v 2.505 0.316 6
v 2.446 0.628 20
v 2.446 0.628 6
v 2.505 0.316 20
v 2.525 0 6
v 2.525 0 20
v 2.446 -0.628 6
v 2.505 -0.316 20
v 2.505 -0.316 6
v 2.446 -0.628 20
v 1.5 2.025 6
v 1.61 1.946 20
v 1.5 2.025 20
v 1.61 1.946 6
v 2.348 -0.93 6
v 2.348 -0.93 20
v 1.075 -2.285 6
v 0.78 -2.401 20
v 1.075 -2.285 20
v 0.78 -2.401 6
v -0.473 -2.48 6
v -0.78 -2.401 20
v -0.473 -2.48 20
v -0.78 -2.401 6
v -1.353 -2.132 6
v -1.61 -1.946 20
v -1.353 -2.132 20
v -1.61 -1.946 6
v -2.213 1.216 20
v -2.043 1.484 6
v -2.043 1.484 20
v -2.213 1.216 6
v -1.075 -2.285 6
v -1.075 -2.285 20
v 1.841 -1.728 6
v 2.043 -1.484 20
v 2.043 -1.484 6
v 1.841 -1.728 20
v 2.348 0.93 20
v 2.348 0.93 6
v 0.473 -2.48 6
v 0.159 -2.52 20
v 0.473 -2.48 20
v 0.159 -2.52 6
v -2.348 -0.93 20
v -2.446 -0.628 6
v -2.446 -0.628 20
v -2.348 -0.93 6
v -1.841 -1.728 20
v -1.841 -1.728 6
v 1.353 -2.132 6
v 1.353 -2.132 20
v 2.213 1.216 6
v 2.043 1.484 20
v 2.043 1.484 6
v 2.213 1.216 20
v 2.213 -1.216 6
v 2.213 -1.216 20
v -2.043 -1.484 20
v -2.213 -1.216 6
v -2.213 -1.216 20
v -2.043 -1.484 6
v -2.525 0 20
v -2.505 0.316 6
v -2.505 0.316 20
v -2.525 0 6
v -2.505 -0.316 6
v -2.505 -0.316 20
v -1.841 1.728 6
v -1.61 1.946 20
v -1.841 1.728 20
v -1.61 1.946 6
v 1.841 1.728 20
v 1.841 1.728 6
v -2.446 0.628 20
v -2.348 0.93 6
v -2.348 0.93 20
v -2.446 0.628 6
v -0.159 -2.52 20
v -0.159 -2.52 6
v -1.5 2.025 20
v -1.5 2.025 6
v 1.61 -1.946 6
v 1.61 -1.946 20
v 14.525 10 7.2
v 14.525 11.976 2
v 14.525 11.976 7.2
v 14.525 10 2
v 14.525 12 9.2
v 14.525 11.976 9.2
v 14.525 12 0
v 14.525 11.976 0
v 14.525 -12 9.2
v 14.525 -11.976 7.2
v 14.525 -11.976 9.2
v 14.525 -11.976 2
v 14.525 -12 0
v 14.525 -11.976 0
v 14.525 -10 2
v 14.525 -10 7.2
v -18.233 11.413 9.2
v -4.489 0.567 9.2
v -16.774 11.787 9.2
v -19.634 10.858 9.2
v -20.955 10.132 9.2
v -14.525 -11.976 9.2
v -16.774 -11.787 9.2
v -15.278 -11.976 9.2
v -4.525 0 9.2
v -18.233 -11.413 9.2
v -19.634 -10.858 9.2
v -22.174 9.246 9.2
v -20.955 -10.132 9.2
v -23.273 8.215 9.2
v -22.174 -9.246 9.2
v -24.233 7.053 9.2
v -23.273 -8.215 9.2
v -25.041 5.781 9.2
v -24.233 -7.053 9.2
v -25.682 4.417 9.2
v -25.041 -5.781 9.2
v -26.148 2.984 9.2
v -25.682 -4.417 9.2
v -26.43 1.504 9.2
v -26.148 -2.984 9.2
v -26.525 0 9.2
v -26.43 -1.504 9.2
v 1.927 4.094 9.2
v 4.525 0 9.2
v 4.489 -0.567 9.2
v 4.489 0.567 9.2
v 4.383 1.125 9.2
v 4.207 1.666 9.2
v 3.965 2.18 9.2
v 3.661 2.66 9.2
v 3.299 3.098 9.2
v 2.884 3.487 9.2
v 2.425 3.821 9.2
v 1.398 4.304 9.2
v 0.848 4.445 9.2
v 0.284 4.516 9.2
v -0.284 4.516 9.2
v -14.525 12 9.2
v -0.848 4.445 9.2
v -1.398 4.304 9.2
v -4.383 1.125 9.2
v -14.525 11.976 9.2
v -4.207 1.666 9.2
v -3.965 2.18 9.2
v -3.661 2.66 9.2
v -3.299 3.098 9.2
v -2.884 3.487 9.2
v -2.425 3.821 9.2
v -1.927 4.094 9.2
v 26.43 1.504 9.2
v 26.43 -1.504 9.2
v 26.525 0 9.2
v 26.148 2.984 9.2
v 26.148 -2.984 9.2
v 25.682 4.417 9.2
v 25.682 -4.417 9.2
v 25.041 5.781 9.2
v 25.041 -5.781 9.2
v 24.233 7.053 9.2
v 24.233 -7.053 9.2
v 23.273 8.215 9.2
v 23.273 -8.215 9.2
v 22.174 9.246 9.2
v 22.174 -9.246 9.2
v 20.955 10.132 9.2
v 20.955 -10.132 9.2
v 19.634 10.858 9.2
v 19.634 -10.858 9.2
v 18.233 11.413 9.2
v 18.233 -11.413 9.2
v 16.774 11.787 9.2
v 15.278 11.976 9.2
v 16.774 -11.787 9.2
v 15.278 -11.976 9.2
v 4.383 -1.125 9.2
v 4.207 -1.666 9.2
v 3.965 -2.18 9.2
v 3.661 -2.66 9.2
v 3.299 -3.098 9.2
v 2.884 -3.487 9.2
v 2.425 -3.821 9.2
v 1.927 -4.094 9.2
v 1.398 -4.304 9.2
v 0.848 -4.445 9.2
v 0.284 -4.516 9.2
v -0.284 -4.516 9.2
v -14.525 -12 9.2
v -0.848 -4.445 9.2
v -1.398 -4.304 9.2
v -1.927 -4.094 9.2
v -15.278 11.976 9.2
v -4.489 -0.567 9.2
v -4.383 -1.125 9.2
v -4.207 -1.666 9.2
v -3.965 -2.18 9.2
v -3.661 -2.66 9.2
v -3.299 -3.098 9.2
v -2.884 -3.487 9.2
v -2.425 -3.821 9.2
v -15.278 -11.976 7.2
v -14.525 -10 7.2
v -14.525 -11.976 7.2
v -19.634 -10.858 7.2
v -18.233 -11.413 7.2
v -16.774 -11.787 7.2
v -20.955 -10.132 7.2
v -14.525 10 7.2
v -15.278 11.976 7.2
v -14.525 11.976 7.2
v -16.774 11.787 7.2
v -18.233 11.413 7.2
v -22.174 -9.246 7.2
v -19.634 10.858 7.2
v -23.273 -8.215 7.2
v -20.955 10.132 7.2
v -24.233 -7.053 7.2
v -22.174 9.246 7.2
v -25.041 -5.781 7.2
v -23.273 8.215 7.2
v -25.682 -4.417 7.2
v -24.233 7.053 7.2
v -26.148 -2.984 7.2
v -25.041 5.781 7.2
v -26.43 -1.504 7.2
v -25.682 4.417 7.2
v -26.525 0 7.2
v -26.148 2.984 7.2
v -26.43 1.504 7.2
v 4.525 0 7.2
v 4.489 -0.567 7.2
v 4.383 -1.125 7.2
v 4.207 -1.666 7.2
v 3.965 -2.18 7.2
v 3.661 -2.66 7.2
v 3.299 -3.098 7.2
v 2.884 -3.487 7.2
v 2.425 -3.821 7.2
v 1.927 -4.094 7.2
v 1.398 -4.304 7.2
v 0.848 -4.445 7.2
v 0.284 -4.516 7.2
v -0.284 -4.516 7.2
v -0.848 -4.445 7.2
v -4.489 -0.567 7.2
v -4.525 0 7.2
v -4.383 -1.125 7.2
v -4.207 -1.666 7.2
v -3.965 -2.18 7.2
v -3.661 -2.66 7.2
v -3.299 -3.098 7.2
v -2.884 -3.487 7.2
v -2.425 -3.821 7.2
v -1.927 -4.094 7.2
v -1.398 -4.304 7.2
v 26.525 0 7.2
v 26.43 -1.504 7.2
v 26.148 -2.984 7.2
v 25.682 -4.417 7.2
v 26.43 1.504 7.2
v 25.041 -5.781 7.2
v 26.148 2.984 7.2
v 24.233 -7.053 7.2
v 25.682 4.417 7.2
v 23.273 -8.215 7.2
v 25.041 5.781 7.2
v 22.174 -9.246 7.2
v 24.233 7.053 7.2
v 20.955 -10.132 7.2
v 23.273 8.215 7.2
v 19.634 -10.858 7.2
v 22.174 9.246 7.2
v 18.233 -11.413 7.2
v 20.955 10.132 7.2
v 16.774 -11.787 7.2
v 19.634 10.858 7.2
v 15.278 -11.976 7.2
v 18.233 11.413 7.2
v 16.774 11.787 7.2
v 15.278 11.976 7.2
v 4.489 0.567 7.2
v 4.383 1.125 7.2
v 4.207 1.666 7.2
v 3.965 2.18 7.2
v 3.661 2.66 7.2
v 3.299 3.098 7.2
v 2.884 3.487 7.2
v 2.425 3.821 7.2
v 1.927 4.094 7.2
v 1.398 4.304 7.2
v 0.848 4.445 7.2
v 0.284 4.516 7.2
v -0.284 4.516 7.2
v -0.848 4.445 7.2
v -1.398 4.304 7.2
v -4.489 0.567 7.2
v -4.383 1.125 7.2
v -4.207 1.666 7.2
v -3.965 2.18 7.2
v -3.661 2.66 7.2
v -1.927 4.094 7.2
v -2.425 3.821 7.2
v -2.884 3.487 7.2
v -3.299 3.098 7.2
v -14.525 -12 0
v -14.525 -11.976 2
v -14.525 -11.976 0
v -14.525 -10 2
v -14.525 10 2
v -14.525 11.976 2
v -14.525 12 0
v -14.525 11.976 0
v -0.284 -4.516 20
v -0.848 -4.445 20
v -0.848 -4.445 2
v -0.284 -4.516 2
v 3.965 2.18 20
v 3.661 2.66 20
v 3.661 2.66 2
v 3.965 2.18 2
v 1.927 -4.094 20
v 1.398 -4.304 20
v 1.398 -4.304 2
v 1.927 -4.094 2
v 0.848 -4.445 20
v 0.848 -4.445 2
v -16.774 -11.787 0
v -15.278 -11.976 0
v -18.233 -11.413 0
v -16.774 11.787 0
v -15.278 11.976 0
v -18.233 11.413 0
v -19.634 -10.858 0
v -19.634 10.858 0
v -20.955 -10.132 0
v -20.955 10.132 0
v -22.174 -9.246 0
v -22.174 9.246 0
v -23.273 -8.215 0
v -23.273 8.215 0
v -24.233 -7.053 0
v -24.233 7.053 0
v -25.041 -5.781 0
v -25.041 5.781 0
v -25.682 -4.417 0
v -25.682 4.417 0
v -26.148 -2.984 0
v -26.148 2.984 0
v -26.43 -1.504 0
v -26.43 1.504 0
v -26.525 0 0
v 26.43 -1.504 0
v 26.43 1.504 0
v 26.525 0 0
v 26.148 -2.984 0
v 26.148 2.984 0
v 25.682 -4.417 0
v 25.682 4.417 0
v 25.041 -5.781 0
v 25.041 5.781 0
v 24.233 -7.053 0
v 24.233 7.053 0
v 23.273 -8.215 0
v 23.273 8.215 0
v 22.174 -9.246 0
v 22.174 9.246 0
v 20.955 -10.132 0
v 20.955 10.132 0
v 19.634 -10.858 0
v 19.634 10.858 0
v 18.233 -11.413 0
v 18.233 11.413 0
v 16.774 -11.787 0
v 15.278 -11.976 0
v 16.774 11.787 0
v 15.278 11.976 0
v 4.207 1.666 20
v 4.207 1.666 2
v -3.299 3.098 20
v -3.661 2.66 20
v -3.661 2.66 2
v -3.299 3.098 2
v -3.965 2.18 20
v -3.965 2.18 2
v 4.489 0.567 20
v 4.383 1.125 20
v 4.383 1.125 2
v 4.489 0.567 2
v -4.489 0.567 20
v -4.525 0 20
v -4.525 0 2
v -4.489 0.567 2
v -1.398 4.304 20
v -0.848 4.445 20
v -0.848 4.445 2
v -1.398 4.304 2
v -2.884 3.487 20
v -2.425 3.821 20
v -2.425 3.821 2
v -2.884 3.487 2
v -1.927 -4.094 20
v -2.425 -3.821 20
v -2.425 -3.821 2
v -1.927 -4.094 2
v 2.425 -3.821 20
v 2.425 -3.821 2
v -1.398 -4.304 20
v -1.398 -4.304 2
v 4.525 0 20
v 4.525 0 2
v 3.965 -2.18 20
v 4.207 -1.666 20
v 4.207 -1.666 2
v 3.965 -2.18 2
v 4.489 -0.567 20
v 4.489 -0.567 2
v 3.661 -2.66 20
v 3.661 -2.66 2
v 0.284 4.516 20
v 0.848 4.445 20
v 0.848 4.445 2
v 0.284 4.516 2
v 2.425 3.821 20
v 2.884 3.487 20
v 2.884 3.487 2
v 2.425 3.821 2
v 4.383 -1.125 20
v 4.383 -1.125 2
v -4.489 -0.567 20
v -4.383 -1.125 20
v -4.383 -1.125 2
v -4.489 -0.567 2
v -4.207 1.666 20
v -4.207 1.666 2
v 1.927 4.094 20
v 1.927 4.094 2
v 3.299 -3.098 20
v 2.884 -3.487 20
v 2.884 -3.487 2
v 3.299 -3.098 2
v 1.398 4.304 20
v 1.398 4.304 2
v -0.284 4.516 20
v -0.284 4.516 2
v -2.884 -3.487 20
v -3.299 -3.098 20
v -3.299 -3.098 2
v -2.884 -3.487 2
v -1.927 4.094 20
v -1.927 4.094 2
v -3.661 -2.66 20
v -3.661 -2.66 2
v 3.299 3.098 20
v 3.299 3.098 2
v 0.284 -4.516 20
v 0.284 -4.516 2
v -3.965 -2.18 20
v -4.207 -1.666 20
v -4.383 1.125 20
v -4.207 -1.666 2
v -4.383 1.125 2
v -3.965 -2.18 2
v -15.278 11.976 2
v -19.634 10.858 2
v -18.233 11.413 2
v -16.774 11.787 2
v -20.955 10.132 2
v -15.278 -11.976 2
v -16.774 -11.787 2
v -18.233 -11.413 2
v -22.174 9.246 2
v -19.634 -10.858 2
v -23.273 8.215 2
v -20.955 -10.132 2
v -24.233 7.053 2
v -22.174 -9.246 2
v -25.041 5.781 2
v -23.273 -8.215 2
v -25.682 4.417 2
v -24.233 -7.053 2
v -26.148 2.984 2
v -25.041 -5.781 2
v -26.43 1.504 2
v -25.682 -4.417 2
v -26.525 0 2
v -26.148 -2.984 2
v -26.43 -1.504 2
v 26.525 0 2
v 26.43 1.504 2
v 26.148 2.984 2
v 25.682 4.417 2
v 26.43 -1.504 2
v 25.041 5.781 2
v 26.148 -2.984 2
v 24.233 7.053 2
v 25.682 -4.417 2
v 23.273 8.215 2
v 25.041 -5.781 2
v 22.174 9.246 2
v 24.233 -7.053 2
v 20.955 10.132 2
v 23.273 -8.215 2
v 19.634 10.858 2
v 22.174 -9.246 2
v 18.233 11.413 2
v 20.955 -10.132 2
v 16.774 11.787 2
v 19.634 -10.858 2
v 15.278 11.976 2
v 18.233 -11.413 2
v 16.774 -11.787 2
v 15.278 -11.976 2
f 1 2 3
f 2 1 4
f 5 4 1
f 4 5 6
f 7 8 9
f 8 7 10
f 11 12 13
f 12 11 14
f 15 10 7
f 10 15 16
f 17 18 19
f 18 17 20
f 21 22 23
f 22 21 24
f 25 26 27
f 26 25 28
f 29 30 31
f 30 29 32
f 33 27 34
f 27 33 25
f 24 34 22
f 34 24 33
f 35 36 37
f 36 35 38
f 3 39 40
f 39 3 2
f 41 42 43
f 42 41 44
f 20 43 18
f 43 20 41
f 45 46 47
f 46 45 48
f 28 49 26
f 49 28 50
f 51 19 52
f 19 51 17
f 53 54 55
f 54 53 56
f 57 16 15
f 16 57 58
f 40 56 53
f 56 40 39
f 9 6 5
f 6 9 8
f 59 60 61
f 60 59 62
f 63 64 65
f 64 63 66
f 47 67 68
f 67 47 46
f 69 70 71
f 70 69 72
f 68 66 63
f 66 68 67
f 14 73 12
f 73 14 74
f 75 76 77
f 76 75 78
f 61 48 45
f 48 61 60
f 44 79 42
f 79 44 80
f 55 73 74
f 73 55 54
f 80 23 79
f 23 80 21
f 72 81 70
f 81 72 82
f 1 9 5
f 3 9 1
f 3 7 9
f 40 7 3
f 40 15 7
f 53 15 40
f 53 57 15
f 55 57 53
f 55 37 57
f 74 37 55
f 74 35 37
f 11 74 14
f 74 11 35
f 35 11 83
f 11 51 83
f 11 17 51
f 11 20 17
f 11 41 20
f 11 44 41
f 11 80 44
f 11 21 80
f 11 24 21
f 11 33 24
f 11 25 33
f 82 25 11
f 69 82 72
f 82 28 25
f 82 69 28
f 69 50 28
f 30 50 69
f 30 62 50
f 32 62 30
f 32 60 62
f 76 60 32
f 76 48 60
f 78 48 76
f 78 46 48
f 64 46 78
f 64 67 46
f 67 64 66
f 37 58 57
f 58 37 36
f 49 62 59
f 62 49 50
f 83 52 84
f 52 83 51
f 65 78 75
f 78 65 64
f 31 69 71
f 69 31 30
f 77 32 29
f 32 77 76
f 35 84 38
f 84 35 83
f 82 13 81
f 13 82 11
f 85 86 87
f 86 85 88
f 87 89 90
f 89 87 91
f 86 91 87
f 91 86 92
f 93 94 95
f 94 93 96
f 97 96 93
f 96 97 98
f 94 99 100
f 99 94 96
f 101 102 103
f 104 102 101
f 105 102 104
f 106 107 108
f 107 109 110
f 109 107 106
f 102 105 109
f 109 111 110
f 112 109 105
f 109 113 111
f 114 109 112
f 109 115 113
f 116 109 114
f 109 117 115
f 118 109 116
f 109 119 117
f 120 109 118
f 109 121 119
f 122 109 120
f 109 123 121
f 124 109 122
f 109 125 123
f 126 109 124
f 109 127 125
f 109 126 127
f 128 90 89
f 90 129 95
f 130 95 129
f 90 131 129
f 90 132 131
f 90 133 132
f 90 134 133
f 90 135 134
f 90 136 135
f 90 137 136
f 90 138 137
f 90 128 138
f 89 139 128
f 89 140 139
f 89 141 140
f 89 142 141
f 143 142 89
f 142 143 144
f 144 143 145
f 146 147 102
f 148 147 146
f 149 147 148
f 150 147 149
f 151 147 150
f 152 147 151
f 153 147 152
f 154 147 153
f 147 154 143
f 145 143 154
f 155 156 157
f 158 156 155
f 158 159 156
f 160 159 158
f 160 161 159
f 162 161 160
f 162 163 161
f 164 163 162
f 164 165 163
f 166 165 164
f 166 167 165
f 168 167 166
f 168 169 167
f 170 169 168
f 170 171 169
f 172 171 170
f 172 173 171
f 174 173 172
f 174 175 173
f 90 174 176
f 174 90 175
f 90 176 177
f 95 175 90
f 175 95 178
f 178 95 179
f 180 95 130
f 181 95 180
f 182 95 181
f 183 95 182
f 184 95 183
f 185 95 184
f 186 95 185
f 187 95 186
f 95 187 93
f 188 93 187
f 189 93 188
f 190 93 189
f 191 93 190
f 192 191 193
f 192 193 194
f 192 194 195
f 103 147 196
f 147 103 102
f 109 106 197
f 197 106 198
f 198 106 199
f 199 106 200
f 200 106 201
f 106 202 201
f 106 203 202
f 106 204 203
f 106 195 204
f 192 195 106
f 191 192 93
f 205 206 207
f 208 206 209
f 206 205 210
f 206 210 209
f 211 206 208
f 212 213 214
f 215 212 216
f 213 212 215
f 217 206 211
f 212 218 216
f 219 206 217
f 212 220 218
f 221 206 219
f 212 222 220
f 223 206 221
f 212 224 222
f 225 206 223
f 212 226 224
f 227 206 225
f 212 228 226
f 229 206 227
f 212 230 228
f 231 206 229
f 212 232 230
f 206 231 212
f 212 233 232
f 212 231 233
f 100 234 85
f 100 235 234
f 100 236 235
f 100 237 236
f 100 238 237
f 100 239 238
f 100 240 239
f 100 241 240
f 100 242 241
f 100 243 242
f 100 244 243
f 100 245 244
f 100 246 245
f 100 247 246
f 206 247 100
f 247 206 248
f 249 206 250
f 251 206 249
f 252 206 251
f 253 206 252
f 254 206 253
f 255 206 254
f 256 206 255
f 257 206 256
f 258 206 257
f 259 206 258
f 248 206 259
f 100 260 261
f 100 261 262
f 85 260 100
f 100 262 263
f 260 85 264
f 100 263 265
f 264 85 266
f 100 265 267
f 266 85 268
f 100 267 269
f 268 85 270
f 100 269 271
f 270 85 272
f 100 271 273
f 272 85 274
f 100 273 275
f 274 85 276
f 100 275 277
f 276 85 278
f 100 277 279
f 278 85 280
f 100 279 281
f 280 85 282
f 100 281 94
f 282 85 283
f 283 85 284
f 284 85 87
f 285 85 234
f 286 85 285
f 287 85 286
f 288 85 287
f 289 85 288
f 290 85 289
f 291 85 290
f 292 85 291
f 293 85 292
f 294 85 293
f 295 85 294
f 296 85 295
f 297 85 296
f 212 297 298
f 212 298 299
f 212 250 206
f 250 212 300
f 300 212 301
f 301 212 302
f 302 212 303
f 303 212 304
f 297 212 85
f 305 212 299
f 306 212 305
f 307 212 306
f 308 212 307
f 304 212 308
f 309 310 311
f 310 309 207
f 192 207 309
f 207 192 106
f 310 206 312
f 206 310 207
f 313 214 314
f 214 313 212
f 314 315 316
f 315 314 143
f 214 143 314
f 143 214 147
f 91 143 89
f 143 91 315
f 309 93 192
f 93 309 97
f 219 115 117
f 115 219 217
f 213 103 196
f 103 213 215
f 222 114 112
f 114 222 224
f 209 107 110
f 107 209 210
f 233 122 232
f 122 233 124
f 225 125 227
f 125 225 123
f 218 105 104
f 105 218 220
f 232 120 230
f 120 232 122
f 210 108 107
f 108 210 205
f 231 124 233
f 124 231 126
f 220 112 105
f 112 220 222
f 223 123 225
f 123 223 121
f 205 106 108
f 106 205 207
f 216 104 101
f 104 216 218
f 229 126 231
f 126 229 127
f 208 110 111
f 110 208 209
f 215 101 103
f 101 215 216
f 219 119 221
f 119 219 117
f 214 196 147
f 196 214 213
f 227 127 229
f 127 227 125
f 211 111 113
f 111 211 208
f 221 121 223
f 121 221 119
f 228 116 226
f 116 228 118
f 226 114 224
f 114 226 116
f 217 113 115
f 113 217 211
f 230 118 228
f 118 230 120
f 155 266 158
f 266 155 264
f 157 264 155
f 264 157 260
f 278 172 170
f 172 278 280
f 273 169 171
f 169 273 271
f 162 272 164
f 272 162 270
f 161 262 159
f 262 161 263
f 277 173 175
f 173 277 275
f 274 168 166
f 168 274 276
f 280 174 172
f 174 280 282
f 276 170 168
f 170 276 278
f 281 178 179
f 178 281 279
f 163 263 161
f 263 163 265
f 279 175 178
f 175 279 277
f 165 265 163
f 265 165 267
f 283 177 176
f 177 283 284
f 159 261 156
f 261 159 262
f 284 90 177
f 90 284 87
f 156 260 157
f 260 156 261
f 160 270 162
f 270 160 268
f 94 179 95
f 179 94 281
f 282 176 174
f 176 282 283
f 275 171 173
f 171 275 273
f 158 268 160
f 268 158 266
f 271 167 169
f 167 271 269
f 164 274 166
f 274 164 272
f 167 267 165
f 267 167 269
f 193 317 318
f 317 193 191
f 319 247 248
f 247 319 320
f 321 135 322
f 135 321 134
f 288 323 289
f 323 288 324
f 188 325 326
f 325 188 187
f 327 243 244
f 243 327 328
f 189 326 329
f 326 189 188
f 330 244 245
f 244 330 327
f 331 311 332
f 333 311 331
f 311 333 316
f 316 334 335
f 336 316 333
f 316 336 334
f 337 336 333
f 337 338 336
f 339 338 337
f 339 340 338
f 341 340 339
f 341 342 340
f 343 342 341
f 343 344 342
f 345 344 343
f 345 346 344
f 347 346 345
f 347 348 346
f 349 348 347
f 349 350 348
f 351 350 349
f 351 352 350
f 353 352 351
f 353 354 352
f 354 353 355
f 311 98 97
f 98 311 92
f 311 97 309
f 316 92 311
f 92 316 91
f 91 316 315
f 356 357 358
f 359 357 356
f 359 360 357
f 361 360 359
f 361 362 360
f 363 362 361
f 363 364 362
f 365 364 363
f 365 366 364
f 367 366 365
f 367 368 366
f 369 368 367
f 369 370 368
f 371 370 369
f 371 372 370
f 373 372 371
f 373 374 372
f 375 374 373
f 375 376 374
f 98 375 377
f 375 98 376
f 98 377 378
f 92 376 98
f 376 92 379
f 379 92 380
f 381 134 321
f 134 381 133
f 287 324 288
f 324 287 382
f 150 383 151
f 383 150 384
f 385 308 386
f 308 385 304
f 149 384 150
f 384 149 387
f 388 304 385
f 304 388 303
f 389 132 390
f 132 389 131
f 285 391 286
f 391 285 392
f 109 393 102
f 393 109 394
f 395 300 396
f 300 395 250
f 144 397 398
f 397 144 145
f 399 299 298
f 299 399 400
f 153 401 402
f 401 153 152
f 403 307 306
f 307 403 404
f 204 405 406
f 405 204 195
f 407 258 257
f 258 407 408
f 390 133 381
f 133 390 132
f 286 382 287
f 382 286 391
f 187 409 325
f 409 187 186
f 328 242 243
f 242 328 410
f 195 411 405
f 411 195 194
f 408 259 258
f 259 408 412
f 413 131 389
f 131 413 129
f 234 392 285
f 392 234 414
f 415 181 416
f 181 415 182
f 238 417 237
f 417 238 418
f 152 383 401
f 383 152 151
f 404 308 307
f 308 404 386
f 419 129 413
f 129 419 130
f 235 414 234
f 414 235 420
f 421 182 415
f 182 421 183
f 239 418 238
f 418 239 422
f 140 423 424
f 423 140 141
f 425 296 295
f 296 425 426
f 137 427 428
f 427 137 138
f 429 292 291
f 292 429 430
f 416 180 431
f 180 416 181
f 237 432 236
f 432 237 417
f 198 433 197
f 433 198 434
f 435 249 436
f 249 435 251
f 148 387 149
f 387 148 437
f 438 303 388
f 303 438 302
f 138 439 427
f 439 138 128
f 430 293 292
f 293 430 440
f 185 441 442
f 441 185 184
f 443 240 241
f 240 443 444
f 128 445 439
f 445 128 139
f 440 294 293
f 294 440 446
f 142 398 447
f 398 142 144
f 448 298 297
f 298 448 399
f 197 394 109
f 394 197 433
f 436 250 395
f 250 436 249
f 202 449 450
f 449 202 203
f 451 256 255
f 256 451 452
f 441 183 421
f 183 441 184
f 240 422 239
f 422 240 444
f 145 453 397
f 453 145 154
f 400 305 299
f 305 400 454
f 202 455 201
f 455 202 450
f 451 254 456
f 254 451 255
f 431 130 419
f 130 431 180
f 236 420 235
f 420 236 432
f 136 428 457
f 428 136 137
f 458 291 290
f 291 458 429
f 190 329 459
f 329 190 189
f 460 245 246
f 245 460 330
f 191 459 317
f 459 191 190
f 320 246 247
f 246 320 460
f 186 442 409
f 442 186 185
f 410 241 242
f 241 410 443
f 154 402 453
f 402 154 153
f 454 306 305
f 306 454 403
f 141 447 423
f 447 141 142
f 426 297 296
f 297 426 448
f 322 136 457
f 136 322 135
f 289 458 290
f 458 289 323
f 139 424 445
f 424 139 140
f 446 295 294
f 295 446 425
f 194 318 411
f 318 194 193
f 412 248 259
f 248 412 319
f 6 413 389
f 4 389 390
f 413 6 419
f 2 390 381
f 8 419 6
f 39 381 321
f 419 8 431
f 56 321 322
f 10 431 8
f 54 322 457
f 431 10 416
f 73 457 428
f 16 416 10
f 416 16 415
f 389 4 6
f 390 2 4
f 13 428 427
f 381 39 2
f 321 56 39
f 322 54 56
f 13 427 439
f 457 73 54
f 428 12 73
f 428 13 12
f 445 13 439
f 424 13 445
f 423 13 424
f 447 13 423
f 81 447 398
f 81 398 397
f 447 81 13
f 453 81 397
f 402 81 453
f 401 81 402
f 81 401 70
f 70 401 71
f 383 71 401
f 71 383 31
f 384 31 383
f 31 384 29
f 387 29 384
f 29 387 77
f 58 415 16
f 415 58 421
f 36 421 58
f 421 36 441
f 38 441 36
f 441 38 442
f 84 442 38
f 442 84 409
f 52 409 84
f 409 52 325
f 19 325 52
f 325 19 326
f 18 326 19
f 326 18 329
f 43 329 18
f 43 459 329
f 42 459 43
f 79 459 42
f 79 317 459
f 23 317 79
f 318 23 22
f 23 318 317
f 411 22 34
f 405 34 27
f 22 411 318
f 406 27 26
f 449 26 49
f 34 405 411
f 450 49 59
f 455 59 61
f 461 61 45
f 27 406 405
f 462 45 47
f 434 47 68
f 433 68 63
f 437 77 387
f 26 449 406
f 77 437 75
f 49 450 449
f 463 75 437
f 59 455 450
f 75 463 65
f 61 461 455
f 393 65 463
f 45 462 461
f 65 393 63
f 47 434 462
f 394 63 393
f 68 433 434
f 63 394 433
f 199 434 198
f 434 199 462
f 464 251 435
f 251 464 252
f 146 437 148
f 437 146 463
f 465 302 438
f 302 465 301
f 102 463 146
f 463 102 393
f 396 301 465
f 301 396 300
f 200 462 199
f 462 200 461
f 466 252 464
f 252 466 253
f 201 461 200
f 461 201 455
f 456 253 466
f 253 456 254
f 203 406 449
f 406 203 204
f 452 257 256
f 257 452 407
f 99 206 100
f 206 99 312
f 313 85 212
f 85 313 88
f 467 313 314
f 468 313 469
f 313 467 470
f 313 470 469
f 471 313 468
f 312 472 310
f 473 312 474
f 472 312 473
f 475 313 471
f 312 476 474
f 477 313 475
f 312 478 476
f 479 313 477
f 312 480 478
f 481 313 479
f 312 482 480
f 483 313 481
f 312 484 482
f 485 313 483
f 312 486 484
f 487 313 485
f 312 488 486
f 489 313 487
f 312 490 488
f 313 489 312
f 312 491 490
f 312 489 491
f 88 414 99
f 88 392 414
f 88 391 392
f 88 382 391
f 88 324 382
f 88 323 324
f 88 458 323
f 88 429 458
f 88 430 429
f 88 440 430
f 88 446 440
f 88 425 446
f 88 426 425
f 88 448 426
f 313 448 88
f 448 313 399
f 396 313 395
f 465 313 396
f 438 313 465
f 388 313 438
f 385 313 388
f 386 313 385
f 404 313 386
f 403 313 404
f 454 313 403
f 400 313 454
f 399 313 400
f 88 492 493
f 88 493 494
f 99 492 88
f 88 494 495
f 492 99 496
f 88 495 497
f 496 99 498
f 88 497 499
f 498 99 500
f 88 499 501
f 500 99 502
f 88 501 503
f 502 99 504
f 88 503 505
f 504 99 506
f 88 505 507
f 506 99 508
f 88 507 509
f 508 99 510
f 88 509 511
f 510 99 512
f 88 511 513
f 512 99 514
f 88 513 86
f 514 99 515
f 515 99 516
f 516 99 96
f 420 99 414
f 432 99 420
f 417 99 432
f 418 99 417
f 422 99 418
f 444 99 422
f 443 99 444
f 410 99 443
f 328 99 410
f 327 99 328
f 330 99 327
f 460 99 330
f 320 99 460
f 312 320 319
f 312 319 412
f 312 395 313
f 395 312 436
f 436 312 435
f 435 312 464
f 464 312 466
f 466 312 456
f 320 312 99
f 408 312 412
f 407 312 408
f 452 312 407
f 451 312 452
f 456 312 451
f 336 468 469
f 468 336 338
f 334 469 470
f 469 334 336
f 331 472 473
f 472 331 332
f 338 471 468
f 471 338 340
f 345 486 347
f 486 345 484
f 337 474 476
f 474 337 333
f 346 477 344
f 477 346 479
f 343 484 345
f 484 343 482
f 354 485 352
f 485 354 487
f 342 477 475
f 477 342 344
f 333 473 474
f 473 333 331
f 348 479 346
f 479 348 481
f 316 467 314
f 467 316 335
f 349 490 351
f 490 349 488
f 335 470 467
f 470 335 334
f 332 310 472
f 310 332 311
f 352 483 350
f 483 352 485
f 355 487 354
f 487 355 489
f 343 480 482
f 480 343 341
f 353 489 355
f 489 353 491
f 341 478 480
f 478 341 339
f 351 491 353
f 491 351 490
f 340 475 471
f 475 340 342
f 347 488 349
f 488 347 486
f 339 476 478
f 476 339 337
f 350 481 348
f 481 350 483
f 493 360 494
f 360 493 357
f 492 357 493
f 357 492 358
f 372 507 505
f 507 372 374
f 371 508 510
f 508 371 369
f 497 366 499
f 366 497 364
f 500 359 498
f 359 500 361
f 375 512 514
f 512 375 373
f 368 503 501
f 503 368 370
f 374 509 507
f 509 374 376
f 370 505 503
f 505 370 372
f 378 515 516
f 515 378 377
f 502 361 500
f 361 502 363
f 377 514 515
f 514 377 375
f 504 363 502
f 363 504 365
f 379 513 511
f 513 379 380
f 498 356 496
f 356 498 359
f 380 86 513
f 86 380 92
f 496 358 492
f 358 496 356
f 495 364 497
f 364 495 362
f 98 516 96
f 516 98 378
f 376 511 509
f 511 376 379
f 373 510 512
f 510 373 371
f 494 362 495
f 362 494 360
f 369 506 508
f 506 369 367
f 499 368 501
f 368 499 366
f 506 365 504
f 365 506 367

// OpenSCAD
$fn=50;

magnetDiameter=20;
magnetThickness=5.2;

thickness=2;

axisDiameter=5.05;
cutSize=0.5;

extraHeight=6;
totalHeight=20;

difference() {
    union() {
        // axis of the stepper
        cylinder(h = totalHeight, d=axisDiameter+2*thickness);


        // walls
        translate([-magnetDiameter/2-axisDiameter/2-thickness,-magnetDiameter/2-thickness,0]) {
            cube([magnetDiameter+axisDiameter+2*thickness,thickness,2*thickness+magnetThickness]);
        }
        translate([-magnetDiameter/2-axisDiameter/2-thickness,+magnetDiameter/2,0]) {
            cube([magnetDiameter+axisDiameter+2*thickness,thickness,2*thickness+magnetThickness]);
        }

        // top layer
        translate([0,0,thickness+magnetThickness]) {
            translate([-magnetDiameter/2-axisDiameter/2-thickness,-magnetDiameter/2-thickness,0]) {
                cube([magnetDiameter+axisDiameter+2*thickness,magnetDiameter+2*thickness,thickness]);
            }
            translate([-(thickness+axisDiameter/2+magnetDiameter/2),0,0]) {
                cylinder(h = thickness, d=magnetDiameter+2*thickness);
            }
            translate([+(thickness+axisDiameter/2+magnetDiameter/2),0,0]) {
                cylinder(h = thickness, d=magnetDiameter+2*thickness);
            } 
        }
        // bottom layer
        translate([-magnetDiameter/2-axisDiameter/2-thickness,-magnetDiameter/2-thickness,0]) {
            cube([magnetDiameter+axisDiameter+2*thickness,magnetDiameter+2*thickness,thickness]);
        }
        translate([-(thickness+axisDiameter/2+magnetDiameter/2),0,0]) {
            cylinder(h = thickness, d=magnetDiameter+2*thickness);
        }
        translate([+(thickness+axisDiameter/2+magnetDiameter/2),0,0]) {
            cylinder(h = thickness, d=magnetDiameter+2*thickness);
        } 
    };
    translate([0,0,extraHeight]) {
        difference() {
            cylinder(h = totalHeight, d=axisDiameter);
            translate([-axisDiameter/2,axisDiameter/2-cutSize,0]) {
                cube([axisDiameter, axisDiameter, totalHeight]);
            }
        }
    }
}
